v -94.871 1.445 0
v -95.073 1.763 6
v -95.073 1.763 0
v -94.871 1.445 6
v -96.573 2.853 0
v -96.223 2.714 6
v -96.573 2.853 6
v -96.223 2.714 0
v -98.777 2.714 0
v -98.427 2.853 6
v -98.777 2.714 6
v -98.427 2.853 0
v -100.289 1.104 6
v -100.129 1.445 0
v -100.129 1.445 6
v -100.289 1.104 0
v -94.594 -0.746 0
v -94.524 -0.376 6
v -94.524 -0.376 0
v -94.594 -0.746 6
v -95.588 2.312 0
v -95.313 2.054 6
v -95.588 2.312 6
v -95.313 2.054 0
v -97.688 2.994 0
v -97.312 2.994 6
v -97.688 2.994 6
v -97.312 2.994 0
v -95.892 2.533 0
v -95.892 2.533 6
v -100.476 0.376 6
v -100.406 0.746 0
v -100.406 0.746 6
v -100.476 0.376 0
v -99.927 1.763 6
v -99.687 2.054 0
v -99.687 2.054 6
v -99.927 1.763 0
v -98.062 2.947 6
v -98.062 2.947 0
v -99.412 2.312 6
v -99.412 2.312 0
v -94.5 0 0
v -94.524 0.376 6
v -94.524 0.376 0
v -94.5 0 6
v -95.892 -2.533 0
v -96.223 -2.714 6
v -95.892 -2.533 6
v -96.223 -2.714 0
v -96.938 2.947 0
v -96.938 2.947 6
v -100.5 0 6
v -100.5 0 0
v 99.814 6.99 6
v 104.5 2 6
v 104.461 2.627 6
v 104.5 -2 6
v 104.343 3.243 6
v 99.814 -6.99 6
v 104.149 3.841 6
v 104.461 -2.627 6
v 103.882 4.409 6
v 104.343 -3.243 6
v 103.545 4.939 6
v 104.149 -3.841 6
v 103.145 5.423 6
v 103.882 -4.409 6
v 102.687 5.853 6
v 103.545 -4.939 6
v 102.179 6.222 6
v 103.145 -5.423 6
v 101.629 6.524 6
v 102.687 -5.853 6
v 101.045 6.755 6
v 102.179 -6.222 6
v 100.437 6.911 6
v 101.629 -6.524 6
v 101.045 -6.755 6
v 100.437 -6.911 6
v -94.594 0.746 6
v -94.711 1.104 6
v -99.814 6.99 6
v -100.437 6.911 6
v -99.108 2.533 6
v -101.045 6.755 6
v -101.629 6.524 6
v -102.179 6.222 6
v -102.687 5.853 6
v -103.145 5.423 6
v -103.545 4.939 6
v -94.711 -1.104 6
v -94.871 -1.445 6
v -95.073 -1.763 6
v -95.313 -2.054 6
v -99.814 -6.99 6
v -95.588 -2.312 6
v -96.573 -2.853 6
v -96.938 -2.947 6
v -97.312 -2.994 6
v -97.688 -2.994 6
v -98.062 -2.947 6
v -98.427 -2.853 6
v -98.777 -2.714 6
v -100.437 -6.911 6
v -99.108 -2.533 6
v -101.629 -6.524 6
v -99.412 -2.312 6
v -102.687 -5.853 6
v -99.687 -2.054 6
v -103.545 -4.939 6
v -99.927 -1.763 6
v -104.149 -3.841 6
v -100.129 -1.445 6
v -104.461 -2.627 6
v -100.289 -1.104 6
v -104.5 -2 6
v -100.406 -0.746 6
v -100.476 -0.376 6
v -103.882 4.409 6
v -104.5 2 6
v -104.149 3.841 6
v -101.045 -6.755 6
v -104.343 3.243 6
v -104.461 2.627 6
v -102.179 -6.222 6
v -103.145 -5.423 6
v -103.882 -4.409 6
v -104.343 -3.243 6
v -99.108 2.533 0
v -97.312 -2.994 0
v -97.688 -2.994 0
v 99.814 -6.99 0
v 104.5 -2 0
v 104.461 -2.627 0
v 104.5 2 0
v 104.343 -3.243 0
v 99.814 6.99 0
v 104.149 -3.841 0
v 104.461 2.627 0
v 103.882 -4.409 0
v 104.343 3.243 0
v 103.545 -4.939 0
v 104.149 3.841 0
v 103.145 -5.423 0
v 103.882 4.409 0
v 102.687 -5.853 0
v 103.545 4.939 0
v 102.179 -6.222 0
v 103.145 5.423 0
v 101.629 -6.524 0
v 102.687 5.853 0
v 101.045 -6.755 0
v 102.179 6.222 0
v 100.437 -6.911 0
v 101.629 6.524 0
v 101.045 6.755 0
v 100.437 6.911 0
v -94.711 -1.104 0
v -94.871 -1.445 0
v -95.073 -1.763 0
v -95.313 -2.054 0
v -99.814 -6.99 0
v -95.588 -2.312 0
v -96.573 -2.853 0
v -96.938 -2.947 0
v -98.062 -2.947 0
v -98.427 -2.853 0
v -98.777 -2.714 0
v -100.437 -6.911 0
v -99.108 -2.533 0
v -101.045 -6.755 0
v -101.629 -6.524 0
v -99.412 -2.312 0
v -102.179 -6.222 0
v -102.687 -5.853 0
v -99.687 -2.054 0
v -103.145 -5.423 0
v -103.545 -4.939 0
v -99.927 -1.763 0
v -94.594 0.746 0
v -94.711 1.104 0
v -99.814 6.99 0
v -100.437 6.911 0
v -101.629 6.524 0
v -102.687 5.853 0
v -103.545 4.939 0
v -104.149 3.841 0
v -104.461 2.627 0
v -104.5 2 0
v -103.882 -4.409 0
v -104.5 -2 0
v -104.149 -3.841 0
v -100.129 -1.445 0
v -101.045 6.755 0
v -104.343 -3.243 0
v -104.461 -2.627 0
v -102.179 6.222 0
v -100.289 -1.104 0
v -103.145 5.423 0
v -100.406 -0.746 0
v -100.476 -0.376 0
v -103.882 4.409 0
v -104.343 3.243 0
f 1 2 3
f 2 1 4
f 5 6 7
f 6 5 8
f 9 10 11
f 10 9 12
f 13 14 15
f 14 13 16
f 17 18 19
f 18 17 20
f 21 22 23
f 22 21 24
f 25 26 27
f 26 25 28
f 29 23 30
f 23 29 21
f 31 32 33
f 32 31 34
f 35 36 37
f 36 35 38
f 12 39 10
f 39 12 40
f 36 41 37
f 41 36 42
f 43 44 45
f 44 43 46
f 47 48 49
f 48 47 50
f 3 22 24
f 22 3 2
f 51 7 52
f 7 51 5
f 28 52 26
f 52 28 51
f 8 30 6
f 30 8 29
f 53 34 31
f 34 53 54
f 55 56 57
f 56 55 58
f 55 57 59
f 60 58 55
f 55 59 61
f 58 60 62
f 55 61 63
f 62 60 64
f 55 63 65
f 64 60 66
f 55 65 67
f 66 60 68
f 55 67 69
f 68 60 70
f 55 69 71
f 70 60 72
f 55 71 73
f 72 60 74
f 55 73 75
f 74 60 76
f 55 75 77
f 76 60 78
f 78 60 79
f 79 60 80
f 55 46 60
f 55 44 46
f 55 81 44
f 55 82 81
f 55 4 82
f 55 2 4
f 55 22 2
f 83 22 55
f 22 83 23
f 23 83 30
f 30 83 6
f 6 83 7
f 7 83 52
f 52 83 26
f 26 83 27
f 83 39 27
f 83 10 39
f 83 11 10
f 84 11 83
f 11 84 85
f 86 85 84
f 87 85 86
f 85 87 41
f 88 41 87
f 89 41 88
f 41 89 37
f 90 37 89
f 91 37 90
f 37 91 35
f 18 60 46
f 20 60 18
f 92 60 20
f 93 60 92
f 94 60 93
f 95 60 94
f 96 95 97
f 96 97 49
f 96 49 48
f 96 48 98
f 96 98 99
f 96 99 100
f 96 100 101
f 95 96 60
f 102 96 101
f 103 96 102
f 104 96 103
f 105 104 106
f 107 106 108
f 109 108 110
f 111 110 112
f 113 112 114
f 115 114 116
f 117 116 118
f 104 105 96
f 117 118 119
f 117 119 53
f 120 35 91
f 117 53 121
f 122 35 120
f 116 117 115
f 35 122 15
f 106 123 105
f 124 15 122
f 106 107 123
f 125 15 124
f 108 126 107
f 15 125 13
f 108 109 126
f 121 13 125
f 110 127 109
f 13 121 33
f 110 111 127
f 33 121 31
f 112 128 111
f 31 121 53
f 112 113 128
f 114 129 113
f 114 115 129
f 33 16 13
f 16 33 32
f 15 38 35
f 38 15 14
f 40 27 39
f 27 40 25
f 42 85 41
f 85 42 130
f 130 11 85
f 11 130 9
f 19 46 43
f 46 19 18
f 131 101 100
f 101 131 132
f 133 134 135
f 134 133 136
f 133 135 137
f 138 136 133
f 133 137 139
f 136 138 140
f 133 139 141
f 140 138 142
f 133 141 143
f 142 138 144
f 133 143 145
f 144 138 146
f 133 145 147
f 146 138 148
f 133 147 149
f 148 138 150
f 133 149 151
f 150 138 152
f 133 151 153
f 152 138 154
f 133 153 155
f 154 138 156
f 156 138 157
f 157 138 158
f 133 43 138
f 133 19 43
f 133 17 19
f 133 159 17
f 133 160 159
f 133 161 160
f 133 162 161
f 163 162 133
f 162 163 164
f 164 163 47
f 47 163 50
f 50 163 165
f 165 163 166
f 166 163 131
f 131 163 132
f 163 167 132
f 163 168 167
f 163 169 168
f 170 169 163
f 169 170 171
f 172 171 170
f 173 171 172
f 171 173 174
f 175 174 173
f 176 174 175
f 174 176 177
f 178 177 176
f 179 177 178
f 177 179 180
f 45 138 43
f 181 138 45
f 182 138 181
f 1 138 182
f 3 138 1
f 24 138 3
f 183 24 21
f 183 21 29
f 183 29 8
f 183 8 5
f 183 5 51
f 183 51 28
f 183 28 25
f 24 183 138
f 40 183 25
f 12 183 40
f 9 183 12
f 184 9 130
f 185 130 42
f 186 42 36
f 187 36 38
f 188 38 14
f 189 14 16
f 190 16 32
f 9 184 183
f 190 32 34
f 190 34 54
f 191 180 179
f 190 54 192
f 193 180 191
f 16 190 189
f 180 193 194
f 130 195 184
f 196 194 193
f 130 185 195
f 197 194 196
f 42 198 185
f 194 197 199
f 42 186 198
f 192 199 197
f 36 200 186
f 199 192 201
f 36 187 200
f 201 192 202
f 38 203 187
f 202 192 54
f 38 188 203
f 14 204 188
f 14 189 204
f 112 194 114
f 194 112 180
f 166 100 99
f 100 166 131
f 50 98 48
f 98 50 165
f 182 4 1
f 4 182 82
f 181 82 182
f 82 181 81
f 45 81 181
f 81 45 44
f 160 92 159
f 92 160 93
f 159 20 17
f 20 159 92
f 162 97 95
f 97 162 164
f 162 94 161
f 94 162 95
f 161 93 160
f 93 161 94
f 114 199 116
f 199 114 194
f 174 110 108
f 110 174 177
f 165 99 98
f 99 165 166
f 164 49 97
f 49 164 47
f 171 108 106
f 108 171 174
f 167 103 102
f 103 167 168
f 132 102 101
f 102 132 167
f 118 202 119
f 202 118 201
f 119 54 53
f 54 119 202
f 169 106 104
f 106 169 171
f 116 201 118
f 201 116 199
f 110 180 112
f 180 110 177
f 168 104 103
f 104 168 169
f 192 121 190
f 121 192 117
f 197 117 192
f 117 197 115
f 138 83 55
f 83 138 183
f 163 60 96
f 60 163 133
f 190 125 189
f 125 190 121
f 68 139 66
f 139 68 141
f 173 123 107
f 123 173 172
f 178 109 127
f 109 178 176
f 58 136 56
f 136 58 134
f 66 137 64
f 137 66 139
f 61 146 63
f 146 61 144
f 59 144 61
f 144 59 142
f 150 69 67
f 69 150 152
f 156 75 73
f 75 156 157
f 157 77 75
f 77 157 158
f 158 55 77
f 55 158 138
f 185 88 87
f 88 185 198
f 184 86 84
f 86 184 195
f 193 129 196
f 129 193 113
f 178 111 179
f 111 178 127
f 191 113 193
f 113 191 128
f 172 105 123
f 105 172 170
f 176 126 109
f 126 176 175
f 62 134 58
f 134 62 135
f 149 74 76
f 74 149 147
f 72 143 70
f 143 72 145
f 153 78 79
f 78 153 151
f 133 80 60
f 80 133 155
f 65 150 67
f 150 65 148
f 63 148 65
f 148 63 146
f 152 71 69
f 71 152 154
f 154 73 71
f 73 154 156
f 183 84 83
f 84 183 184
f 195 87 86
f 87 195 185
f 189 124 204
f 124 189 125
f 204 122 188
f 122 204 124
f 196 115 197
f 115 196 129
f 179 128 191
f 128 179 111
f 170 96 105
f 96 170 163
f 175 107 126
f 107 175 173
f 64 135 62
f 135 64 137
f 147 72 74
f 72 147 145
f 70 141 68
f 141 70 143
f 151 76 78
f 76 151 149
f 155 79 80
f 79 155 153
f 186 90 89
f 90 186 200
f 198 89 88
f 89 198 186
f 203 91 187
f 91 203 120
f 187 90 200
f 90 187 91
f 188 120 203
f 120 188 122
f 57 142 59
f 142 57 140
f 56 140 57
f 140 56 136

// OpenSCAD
$fn = 50;


difference() {
	union() {
		hull() {
			translate(v = [-99.5000000000, 2.0000000000, 0]) {
				cylinder(h = 6, r = 5);
			}
			translate(v = [99.5000000000, 2.0000000000, 0]) {
				cylinder(h = 6, r = 5);
			}
			translate(v = [-99.5000000000, -2.0000000000, 0]) {
				cylinder(h = 6, r = 5);
			}
			translate(v = [99.5000000000, -2.0000000000, 0]) {
				cylinder(h = 6, r = 5);
			}
		}
	}
	union() {
		translate(v = [-97.5000000000, 0.0000000000, 0]) {
			cylinder(h = 6, r = 3.0000000000);
		}
		translate(v = [-97.5000000000, 0.0000000000, 0]) {
			cylinder(h = 6, r = 1.5000000000);
		}
		translate(v = [-97.5000000000, 0.0000000000, 0]) {
			cylinder(h = 6, r = 1.5000000000);
		}
		translate(v = [-97.5000000000, 0.0000000000, 0]) {
			cylinder(h = 6, r = 1.5000000000);
		}
	}
}
